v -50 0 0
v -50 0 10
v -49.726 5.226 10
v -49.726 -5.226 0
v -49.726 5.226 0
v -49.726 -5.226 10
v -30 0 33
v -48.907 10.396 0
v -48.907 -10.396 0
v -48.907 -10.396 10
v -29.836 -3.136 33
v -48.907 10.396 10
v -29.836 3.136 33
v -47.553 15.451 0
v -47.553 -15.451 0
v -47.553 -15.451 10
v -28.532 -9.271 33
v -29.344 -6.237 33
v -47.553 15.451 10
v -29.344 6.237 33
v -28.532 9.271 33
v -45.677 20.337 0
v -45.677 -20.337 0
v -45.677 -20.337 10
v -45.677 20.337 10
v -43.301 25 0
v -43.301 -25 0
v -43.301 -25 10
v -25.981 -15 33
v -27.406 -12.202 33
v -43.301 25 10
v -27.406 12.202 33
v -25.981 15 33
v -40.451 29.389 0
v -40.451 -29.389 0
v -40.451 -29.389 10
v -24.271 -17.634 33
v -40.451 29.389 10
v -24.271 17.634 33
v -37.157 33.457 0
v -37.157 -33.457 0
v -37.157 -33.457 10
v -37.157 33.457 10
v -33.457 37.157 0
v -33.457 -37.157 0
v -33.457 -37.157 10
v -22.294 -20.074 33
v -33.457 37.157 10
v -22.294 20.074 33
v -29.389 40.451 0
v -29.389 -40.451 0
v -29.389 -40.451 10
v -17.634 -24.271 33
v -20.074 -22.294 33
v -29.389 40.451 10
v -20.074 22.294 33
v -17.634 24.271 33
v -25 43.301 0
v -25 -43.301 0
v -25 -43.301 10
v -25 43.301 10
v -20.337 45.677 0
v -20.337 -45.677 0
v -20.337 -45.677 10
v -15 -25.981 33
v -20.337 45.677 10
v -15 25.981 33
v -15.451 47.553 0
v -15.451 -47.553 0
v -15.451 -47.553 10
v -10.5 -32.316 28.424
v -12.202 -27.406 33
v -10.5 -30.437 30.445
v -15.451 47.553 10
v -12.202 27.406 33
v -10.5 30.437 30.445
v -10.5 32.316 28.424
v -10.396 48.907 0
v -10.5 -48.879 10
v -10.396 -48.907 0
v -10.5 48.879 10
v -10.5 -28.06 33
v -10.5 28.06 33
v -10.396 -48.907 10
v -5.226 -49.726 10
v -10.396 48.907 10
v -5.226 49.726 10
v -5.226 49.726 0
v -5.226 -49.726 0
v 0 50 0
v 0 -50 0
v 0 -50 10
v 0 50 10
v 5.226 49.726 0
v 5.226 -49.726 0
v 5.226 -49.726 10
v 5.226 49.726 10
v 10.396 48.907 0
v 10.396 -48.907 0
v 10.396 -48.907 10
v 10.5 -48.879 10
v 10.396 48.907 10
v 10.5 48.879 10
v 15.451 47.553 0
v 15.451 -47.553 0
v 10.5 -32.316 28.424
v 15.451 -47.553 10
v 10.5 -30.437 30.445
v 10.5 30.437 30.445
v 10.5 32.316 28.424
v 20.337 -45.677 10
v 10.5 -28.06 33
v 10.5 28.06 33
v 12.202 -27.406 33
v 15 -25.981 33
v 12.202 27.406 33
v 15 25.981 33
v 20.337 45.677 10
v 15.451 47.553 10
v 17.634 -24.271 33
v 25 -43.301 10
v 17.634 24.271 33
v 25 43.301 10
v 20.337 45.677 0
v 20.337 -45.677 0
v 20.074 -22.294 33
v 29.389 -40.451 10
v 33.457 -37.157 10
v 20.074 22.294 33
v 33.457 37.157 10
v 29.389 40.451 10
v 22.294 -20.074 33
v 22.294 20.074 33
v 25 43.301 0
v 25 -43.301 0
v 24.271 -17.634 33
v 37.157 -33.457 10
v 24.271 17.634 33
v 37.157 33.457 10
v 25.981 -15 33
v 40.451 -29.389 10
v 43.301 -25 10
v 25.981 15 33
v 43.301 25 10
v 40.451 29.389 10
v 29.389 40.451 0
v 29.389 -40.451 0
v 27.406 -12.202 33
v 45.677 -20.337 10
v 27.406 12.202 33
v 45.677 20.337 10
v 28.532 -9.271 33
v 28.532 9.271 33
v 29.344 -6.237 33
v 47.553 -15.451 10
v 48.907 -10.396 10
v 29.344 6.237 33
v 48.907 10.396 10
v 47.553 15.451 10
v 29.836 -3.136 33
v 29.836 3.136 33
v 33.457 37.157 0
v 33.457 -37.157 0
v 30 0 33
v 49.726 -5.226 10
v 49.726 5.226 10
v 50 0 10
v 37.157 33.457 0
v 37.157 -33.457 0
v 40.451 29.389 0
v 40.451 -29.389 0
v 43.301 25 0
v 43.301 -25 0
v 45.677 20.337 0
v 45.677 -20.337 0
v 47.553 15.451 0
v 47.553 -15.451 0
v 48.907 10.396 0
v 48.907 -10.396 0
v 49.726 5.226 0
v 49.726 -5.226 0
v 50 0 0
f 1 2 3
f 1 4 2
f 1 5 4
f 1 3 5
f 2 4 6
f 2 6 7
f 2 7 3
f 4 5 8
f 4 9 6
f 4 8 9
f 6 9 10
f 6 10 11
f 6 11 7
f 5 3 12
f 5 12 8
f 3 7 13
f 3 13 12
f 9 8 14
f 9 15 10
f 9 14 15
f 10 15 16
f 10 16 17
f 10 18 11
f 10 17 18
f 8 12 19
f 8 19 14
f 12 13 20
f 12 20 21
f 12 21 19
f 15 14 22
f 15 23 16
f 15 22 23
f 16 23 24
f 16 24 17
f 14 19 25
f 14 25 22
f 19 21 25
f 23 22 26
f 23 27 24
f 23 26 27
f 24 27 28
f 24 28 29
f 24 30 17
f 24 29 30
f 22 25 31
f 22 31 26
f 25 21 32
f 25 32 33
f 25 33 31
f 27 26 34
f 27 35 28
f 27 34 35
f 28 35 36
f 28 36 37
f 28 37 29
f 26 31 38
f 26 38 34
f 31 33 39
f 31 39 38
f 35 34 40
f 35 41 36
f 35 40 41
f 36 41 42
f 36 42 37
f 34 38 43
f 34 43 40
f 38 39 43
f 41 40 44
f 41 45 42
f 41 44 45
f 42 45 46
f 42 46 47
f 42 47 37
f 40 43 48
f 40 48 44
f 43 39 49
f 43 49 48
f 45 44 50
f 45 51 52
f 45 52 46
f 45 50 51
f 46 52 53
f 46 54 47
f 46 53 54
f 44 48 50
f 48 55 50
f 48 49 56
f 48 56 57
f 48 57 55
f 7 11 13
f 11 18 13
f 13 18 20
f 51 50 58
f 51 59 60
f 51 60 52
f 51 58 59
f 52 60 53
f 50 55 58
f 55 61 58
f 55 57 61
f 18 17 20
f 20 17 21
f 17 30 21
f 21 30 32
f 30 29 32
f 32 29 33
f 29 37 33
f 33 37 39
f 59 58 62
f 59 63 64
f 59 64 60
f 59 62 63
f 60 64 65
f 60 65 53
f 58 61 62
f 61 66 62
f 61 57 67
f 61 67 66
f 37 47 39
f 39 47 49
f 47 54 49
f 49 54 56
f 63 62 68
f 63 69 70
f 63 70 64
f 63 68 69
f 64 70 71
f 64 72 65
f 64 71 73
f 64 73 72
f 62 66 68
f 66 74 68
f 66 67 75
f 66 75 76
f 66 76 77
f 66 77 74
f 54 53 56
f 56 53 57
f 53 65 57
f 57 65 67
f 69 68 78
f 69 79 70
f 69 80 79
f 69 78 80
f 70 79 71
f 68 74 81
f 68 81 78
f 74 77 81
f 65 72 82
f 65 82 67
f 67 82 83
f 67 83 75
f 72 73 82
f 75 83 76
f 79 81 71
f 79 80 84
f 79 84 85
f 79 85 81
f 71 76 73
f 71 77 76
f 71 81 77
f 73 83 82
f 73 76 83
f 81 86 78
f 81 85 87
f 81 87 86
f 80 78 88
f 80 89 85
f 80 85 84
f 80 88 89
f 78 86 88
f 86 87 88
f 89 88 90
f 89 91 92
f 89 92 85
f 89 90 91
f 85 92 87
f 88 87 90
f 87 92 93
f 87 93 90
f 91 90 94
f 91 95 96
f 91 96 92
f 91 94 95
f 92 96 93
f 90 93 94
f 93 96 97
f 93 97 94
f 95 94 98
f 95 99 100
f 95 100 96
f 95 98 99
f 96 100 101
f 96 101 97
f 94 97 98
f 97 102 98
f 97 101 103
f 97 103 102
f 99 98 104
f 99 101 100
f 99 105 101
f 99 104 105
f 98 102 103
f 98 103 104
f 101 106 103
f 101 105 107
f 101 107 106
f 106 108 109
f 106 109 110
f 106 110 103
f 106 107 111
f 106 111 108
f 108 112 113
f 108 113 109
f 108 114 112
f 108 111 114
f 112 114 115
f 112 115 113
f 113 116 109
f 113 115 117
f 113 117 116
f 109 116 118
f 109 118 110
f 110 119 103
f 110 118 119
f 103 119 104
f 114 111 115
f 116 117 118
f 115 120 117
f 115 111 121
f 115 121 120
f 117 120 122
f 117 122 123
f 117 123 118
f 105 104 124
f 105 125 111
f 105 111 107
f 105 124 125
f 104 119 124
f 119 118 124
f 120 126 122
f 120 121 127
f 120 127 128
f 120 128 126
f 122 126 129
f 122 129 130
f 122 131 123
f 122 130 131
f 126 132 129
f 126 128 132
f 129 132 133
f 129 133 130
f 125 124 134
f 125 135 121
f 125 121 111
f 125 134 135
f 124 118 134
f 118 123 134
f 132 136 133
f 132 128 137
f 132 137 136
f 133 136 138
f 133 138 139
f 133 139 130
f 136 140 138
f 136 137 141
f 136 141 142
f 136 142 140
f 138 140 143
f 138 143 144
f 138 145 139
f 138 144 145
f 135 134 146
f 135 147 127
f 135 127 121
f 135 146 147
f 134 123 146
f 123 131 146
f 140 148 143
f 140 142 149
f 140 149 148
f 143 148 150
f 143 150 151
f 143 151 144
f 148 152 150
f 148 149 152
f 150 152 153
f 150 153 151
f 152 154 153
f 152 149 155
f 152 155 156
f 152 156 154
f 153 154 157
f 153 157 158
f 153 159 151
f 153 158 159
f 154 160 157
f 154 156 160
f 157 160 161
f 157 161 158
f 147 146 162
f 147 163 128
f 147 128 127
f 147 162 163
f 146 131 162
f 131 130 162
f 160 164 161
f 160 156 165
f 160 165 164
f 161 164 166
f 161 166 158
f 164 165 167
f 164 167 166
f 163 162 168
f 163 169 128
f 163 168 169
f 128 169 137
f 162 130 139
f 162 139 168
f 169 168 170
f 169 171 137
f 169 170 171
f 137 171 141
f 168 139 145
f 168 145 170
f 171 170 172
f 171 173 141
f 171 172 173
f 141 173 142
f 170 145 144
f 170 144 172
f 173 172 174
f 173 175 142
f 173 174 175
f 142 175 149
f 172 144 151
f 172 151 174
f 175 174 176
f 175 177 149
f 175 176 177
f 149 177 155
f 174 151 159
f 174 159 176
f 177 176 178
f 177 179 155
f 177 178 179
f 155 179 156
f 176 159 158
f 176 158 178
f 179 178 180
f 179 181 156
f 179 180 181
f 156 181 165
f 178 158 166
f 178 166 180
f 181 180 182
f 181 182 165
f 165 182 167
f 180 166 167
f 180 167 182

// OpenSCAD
$fn = 60; 

difference(){

	hull(){

		cylinder(h = 10, r = 50);
		
		// ベゼルの高さ=23mm
		translate([0, 0, 23]){

			cylinder(h = 10, r = 30);

		}

	}

	translate([0, 0, 35]){

		// ディスプレイの厚み=321mm
		cube([21, 100, 50], center = true);

	}

}
